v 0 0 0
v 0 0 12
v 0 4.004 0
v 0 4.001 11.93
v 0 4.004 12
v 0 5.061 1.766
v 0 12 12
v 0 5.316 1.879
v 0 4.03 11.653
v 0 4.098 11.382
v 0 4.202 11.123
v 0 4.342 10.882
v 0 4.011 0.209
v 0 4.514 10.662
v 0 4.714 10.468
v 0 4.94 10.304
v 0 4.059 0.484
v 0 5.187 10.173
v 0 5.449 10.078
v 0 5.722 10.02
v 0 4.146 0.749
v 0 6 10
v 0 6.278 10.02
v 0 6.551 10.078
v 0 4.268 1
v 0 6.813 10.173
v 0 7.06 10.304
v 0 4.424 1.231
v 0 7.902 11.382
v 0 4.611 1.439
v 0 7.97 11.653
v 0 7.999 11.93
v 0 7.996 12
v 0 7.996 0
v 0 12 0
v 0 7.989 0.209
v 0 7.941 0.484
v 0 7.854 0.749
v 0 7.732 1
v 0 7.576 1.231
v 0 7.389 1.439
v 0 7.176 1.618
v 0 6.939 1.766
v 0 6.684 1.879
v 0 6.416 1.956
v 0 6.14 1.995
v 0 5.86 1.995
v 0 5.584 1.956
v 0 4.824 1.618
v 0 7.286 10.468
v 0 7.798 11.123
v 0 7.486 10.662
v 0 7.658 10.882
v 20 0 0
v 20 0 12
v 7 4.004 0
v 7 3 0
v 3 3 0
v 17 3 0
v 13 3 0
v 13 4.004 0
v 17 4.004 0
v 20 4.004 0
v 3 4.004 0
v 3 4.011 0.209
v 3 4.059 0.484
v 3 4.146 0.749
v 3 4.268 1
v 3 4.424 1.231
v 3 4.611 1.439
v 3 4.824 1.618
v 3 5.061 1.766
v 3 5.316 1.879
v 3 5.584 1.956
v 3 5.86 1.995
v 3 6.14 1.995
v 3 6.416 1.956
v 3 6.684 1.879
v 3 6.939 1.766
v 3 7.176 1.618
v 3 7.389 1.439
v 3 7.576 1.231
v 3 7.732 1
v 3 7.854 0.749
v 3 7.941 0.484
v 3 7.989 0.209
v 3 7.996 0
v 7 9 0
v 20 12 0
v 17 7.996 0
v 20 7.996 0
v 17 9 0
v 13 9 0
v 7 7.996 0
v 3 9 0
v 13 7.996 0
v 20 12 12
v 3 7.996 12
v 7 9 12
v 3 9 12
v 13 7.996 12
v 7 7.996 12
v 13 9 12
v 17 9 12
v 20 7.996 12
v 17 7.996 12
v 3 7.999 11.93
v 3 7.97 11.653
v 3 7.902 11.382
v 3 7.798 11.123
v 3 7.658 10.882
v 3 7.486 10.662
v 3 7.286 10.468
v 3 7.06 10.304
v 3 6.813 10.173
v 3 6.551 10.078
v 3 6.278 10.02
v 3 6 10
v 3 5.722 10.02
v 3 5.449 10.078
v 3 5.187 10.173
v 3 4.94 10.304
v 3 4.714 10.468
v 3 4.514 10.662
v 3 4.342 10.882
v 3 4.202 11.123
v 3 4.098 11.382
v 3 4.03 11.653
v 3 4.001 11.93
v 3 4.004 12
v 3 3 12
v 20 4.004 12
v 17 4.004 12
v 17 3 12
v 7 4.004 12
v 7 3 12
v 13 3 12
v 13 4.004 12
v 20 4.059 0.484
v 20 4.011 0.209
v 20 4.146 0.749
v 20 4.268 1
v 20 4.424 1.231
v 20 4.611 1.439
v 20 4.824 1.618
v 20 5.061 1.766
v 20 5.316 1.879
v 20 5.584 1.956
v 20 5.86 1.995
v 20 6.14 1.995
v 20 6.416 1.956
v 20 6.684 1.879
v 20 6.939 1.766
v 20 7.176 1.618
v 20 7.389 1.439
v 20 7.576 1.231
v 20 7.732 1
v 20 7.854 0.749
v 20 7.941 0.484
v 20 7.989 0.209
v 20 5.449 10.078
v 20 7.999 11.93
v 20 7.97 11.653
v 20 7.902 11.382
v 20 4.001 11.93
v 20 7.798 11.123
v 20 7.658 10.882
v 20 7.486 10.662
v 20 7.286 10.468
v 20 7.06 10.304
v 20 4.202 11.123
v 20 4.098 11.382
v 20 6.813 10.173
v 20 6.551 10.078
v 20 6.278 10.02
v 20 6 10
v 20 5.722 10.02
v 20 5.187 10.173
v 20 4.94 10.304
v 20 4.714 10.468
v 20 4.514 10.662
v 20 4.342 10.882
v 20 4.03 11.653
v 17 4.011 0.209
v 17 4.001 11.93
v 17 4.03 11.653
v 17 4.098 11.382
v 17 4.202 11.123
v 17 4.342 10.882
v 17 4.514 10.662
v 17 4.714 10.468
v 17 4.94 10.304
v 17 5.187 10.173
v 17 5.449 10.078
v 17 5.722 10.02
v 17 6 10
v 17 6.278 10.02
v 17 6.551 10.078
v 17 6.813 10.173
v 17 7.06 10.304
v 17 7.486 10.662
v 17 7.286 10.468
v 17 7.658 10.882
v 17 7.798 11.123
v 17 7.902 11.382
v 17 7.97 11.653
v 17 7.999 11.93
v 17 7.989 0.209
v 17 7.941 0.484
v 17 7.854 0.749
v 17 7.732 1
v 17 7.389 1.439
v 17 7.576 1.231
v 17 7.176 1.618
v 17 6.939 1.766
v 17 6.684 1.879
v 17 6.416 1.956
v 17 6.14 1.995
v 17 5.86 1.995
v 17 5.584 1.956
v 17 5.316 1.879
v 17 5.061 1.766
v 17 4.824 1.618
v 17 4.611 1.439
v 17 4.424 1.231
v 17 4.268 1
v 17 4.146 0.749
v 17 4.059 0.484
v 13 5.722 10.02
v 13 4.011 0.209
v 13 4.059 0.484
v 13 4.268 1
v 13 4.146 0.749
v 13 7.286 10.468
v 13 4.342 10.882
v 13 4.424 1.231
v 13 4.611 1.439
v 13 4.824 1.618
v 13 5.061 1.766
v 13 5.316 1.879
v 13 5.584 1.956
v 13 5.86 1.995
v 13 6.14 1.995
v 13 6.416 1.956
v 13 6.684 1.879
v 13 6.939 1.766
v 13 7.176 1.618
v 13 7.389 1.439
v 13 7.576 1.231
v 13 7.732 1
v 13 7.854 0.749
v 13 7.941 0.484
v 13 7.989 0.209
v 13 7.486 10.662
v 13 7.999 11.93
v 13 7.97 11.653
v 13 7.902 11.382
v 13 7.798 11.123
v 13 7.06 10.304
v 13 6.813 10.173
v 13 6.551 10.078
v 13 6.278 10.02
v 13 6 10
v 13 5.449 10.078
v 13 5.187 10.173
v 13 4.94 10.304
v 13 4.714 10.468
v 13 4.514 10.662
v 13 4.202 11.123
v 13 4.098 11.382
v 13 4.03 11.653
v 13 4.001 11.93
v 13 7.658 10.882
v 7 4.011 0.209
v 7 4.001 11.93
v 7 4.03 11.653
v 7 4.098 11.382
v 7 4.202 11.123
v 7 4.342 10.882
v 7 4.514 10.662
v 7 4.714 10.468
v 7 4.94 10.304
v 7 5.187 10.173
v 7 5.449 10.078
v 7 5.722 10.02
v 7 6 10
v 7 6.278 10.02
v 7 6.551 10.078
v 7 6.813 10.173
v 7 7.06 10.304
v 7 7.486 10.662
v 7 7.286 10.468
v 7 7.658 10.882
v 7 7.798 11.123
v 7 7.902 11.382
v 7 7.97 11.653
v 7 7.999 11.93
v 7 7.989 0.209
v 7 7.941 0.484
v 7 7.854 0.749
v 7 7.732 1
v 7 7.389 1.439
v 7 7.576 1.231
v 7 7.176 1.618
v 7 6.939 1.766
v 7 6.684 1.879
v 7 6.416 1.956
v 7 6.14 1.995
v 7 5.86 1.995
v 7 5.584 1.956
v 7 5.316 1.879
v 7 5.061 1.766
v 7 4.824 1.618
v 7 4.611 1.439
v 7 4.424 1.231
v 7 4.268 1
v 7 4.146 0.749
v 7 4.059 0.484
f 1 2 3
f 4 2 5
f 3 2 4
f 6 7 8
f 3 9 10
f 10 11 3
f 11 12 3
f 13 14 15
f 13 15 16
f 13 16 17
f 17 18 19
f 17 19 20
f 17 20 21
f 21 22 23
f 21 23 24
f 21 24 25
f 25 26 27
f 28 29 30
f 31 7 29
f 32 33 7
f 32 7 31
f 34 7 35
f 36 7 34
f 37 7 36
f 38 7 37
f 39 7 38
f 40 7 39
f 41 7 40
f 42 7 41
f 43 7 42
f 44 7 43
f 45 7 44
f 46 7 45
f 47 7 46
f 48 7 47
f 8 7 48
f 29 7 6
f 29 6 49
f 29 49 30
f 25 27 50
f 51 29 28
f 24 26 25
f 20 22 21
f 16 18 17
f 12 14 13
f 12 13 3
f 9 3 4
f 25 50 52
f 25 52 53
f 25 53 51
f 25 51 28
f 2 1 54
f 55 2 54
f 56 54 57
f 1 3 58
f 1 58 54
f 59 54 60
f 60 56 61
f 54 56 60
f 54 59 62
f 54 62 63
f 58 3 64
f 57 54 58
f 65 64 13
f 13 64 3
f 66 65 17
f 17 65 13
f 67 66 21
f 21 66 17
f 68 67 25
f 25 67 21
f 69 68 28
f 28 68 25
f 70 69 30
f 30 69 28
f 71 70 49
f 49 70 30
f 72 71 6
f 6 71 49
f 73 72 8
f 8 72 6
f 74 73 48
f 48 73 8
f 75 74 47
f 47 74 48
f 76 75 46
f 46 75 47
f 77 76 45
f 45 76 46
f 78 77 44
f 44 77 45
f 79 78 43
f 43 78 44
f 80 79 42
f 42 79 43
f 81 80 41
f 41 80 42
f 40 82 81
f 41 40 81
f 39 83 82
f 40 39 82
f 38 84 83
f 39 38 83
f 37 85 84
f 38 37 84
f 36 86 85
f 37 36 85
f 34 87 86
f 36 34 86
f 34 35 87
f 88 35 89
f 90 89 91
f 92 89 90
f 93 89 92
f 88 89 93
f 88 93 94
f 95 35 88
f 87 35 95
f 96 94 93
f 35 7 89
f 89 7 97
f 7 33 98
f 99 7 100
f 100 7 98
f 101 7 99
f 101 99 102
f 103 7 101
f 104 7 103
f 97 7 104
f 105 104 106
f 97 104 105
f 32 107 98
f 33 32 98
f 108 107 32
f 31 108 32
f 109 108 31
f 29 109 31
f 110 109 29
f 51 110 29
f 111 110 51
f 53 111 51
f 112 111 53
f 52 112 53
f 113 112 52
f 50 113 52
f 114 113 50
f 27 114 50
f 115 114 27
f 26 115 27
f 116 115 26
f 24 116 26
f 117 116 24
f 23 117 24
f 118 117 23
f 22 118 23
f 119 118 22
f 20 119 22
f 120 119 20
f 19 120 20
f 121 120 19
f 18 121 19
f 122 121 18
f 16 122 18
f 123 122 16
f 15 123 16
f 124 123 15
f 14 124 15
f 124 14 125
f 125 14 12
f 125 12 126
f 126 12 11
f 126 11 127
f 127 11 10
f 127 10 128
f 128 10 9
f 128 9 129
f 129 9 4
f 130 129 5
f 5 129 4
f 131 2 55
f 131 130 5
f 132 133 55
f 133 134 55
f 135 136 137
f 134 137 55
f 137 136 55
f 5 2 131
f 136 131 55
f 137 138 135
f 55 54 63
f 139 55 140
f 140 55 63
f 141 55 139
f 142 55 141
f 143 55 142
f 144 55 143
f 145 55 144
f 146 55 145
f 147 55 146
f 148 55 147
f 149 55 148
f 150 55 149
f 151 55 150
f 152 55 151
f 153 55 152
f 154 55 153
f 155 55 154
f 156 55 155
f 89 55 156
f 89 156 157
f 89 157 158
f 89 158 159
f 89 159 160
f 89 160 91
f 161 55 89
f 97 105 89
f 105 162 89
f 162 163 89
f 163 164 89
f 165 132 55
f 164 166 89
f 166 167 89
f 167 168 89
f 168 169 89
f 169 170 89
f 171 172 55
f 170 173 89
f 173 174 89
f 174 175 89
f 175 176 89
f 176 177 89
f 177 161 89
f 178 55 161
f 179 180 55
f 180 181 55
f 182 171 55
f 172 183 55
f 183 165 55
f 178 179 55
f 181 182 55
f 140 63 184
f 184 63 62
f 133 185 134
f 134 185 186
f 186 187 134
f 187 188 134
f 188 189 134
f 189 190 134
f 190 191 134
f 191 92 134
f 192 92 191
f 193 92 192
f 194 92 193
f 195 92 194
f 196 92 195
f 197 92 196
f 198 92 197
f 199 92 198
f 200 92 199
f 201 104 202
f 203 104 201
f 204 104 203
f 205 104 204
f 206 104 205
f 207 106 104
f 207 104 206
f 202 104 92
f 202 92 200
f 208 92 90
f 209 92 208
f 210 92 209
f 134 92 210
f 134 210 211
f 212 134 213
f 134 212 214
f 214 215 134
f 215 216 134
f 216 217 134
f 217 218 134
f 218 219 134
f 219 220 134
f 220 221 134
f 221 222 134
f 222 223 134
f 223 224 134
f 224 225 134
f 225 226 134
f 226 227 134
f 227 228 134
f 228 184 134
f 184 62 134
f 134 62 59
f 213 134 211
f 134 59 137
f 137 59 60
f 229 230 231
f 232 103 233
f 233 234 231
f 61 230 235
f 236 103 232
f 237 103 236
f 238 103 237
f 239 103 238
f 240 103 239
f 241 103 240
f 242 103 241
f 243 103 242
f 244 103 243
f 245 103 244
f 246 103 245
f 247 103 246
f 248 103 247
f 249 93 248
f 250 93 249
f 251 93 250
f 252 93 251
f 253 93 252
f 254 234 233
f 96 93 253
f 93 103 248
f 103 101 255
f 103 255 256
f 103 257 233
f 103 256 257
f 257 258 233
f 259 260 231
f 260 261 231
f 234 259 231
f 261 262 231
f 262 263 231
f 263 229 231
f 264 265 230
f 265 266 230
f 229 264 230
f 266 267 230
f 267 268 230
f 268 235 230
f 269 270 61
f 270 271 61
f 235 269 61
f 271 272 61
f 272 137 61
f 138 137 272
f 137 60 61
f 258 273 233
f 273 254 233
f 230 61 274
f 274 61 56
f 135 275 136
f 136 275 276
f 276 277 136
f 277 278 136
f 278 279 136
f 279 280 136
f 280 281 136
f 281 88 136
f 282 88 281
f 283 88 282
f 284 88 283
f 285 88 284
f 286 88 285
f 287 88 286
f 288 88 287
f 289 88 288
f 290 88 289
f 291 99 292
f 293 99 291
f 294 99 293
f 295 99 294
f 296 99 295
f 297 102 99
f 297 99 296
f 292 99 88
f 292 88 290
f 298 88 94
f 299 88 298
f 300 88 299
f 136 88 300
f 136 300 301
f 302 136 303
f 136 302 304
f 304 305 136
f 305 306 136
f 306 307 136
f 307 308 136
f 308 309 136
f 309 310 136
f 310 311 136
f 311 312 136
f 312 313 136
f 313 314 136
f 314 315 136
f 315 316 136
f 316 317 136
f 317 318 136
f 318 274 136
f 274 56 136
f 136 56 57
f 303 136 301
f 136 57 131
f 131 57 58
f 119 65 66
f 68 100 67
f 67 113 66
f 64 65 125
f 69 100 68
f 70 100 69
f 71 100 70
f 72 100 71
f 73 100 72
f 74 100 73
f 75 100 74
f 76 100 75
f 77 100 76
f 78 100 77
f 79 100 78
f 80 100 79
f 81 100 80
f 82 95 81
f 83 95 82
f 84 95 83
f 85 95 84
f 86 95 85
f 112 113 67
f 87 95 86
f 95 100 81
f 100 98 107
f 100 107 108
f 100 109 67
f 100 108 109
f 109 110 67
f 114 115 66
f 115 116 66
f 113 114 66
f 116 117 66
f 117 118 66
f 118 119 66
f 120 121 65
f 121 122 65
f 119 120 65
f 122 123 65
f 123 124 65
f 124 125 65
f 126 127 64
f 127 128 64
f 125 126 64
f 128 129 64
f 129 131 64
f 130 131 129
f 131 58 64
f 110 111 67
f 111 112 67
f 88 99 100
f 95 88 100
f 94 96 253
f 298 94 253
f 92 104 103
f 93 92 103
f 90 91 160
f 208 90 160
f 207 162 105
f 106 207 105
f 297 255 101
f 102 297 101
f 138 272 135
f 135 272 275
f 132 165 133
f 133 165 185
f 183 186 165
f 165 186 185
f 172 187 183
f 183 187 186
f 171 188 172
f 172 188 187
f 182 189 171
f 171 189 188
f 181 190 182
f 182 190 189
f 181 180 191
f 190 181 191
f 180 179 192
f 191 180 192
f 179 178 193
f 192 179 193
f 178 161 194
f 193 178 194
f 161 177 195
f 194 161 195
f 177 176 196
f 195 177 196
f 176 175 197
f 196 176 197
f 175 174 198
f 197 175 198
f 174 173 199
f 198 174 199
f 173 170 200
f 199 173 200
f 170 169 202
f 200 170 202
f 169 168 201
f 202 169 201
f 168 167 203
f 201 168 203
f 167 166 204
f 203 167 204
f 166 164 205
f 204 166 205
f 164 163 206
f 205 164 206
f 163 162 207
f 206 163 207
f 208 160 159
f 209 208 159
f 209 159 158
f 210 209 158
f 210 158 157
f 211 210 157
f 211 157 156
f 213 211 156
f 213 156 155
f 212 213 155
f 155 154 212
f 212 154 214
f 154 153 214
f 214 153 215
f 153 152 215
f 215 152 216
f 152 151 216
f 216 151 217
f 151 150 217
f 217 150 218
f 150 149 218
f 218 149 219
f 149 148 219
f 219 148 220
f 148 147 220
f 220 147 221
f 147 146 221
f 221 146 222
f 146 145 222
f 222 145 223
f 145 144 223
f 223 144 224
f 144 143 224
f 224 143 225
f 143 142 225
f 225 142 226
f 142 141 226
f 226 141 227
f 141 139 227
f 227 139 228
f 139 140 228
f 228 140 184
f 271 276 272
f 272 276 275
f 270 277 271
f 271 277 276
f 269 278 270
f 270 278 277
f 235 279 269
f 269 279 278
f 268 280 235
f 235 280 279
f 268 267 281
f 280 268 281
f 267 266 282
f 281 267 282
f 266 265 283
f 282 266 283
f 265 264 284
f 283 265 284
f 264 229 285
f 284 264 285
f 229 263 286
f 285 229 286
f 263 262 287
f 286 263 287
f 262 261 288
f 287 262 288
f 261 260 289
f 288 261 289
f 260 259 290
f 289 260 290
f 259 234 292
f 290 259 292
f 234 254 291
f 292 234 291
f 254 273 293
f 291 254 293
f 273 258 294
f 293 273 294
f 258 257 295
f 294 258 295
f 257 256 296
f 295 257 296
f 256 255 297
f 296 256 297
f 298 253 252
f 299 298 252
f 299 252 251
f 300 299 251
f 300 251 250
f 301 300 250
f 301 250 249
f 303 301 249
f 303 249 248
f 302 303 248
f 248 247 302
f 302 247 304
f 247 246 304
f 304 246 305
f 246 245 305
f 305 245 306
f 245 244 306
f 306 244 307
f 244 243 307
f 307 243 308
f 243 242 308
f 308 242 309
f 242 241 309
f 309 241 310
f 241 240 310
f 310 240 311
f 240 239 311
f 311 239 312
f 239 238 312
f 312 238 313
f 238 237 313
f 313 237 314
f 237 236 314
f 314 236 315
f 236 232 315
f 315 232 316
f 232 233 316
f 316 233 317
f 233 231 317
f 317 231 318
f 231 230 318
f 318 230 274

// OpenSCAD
inner_x=20;
inner_y=12;
z=12;

$fn=45;

pole_x=4;
pole_y=6;
pole_diff=10;

pad=0.1;
padd=pad*2;
wire_d=4;
wire_r=wire_d/2;

difference() {
    cube([inner_x,inner_y,z]);
    translate([inner_x/2-(pole_diff+pole_x)/2,inner_y/2-pole_y/2,-pad]) {
        cube([pole_x,pole_y,z+padd]);
        translate([pole_diff,0,0])
        cube([pole_x,pole_y,z+padd]);
    }
    translate([-pad,inner_y/2,0])
    rotate([0,90,0])
    cylinder(r=wire_r,h=inner_x+padd);

    translate([-pad,inner_y/2,z])
    rotate([0,90,0])
    cylinder(r=wire_r,h=inner_x+padd);
}
